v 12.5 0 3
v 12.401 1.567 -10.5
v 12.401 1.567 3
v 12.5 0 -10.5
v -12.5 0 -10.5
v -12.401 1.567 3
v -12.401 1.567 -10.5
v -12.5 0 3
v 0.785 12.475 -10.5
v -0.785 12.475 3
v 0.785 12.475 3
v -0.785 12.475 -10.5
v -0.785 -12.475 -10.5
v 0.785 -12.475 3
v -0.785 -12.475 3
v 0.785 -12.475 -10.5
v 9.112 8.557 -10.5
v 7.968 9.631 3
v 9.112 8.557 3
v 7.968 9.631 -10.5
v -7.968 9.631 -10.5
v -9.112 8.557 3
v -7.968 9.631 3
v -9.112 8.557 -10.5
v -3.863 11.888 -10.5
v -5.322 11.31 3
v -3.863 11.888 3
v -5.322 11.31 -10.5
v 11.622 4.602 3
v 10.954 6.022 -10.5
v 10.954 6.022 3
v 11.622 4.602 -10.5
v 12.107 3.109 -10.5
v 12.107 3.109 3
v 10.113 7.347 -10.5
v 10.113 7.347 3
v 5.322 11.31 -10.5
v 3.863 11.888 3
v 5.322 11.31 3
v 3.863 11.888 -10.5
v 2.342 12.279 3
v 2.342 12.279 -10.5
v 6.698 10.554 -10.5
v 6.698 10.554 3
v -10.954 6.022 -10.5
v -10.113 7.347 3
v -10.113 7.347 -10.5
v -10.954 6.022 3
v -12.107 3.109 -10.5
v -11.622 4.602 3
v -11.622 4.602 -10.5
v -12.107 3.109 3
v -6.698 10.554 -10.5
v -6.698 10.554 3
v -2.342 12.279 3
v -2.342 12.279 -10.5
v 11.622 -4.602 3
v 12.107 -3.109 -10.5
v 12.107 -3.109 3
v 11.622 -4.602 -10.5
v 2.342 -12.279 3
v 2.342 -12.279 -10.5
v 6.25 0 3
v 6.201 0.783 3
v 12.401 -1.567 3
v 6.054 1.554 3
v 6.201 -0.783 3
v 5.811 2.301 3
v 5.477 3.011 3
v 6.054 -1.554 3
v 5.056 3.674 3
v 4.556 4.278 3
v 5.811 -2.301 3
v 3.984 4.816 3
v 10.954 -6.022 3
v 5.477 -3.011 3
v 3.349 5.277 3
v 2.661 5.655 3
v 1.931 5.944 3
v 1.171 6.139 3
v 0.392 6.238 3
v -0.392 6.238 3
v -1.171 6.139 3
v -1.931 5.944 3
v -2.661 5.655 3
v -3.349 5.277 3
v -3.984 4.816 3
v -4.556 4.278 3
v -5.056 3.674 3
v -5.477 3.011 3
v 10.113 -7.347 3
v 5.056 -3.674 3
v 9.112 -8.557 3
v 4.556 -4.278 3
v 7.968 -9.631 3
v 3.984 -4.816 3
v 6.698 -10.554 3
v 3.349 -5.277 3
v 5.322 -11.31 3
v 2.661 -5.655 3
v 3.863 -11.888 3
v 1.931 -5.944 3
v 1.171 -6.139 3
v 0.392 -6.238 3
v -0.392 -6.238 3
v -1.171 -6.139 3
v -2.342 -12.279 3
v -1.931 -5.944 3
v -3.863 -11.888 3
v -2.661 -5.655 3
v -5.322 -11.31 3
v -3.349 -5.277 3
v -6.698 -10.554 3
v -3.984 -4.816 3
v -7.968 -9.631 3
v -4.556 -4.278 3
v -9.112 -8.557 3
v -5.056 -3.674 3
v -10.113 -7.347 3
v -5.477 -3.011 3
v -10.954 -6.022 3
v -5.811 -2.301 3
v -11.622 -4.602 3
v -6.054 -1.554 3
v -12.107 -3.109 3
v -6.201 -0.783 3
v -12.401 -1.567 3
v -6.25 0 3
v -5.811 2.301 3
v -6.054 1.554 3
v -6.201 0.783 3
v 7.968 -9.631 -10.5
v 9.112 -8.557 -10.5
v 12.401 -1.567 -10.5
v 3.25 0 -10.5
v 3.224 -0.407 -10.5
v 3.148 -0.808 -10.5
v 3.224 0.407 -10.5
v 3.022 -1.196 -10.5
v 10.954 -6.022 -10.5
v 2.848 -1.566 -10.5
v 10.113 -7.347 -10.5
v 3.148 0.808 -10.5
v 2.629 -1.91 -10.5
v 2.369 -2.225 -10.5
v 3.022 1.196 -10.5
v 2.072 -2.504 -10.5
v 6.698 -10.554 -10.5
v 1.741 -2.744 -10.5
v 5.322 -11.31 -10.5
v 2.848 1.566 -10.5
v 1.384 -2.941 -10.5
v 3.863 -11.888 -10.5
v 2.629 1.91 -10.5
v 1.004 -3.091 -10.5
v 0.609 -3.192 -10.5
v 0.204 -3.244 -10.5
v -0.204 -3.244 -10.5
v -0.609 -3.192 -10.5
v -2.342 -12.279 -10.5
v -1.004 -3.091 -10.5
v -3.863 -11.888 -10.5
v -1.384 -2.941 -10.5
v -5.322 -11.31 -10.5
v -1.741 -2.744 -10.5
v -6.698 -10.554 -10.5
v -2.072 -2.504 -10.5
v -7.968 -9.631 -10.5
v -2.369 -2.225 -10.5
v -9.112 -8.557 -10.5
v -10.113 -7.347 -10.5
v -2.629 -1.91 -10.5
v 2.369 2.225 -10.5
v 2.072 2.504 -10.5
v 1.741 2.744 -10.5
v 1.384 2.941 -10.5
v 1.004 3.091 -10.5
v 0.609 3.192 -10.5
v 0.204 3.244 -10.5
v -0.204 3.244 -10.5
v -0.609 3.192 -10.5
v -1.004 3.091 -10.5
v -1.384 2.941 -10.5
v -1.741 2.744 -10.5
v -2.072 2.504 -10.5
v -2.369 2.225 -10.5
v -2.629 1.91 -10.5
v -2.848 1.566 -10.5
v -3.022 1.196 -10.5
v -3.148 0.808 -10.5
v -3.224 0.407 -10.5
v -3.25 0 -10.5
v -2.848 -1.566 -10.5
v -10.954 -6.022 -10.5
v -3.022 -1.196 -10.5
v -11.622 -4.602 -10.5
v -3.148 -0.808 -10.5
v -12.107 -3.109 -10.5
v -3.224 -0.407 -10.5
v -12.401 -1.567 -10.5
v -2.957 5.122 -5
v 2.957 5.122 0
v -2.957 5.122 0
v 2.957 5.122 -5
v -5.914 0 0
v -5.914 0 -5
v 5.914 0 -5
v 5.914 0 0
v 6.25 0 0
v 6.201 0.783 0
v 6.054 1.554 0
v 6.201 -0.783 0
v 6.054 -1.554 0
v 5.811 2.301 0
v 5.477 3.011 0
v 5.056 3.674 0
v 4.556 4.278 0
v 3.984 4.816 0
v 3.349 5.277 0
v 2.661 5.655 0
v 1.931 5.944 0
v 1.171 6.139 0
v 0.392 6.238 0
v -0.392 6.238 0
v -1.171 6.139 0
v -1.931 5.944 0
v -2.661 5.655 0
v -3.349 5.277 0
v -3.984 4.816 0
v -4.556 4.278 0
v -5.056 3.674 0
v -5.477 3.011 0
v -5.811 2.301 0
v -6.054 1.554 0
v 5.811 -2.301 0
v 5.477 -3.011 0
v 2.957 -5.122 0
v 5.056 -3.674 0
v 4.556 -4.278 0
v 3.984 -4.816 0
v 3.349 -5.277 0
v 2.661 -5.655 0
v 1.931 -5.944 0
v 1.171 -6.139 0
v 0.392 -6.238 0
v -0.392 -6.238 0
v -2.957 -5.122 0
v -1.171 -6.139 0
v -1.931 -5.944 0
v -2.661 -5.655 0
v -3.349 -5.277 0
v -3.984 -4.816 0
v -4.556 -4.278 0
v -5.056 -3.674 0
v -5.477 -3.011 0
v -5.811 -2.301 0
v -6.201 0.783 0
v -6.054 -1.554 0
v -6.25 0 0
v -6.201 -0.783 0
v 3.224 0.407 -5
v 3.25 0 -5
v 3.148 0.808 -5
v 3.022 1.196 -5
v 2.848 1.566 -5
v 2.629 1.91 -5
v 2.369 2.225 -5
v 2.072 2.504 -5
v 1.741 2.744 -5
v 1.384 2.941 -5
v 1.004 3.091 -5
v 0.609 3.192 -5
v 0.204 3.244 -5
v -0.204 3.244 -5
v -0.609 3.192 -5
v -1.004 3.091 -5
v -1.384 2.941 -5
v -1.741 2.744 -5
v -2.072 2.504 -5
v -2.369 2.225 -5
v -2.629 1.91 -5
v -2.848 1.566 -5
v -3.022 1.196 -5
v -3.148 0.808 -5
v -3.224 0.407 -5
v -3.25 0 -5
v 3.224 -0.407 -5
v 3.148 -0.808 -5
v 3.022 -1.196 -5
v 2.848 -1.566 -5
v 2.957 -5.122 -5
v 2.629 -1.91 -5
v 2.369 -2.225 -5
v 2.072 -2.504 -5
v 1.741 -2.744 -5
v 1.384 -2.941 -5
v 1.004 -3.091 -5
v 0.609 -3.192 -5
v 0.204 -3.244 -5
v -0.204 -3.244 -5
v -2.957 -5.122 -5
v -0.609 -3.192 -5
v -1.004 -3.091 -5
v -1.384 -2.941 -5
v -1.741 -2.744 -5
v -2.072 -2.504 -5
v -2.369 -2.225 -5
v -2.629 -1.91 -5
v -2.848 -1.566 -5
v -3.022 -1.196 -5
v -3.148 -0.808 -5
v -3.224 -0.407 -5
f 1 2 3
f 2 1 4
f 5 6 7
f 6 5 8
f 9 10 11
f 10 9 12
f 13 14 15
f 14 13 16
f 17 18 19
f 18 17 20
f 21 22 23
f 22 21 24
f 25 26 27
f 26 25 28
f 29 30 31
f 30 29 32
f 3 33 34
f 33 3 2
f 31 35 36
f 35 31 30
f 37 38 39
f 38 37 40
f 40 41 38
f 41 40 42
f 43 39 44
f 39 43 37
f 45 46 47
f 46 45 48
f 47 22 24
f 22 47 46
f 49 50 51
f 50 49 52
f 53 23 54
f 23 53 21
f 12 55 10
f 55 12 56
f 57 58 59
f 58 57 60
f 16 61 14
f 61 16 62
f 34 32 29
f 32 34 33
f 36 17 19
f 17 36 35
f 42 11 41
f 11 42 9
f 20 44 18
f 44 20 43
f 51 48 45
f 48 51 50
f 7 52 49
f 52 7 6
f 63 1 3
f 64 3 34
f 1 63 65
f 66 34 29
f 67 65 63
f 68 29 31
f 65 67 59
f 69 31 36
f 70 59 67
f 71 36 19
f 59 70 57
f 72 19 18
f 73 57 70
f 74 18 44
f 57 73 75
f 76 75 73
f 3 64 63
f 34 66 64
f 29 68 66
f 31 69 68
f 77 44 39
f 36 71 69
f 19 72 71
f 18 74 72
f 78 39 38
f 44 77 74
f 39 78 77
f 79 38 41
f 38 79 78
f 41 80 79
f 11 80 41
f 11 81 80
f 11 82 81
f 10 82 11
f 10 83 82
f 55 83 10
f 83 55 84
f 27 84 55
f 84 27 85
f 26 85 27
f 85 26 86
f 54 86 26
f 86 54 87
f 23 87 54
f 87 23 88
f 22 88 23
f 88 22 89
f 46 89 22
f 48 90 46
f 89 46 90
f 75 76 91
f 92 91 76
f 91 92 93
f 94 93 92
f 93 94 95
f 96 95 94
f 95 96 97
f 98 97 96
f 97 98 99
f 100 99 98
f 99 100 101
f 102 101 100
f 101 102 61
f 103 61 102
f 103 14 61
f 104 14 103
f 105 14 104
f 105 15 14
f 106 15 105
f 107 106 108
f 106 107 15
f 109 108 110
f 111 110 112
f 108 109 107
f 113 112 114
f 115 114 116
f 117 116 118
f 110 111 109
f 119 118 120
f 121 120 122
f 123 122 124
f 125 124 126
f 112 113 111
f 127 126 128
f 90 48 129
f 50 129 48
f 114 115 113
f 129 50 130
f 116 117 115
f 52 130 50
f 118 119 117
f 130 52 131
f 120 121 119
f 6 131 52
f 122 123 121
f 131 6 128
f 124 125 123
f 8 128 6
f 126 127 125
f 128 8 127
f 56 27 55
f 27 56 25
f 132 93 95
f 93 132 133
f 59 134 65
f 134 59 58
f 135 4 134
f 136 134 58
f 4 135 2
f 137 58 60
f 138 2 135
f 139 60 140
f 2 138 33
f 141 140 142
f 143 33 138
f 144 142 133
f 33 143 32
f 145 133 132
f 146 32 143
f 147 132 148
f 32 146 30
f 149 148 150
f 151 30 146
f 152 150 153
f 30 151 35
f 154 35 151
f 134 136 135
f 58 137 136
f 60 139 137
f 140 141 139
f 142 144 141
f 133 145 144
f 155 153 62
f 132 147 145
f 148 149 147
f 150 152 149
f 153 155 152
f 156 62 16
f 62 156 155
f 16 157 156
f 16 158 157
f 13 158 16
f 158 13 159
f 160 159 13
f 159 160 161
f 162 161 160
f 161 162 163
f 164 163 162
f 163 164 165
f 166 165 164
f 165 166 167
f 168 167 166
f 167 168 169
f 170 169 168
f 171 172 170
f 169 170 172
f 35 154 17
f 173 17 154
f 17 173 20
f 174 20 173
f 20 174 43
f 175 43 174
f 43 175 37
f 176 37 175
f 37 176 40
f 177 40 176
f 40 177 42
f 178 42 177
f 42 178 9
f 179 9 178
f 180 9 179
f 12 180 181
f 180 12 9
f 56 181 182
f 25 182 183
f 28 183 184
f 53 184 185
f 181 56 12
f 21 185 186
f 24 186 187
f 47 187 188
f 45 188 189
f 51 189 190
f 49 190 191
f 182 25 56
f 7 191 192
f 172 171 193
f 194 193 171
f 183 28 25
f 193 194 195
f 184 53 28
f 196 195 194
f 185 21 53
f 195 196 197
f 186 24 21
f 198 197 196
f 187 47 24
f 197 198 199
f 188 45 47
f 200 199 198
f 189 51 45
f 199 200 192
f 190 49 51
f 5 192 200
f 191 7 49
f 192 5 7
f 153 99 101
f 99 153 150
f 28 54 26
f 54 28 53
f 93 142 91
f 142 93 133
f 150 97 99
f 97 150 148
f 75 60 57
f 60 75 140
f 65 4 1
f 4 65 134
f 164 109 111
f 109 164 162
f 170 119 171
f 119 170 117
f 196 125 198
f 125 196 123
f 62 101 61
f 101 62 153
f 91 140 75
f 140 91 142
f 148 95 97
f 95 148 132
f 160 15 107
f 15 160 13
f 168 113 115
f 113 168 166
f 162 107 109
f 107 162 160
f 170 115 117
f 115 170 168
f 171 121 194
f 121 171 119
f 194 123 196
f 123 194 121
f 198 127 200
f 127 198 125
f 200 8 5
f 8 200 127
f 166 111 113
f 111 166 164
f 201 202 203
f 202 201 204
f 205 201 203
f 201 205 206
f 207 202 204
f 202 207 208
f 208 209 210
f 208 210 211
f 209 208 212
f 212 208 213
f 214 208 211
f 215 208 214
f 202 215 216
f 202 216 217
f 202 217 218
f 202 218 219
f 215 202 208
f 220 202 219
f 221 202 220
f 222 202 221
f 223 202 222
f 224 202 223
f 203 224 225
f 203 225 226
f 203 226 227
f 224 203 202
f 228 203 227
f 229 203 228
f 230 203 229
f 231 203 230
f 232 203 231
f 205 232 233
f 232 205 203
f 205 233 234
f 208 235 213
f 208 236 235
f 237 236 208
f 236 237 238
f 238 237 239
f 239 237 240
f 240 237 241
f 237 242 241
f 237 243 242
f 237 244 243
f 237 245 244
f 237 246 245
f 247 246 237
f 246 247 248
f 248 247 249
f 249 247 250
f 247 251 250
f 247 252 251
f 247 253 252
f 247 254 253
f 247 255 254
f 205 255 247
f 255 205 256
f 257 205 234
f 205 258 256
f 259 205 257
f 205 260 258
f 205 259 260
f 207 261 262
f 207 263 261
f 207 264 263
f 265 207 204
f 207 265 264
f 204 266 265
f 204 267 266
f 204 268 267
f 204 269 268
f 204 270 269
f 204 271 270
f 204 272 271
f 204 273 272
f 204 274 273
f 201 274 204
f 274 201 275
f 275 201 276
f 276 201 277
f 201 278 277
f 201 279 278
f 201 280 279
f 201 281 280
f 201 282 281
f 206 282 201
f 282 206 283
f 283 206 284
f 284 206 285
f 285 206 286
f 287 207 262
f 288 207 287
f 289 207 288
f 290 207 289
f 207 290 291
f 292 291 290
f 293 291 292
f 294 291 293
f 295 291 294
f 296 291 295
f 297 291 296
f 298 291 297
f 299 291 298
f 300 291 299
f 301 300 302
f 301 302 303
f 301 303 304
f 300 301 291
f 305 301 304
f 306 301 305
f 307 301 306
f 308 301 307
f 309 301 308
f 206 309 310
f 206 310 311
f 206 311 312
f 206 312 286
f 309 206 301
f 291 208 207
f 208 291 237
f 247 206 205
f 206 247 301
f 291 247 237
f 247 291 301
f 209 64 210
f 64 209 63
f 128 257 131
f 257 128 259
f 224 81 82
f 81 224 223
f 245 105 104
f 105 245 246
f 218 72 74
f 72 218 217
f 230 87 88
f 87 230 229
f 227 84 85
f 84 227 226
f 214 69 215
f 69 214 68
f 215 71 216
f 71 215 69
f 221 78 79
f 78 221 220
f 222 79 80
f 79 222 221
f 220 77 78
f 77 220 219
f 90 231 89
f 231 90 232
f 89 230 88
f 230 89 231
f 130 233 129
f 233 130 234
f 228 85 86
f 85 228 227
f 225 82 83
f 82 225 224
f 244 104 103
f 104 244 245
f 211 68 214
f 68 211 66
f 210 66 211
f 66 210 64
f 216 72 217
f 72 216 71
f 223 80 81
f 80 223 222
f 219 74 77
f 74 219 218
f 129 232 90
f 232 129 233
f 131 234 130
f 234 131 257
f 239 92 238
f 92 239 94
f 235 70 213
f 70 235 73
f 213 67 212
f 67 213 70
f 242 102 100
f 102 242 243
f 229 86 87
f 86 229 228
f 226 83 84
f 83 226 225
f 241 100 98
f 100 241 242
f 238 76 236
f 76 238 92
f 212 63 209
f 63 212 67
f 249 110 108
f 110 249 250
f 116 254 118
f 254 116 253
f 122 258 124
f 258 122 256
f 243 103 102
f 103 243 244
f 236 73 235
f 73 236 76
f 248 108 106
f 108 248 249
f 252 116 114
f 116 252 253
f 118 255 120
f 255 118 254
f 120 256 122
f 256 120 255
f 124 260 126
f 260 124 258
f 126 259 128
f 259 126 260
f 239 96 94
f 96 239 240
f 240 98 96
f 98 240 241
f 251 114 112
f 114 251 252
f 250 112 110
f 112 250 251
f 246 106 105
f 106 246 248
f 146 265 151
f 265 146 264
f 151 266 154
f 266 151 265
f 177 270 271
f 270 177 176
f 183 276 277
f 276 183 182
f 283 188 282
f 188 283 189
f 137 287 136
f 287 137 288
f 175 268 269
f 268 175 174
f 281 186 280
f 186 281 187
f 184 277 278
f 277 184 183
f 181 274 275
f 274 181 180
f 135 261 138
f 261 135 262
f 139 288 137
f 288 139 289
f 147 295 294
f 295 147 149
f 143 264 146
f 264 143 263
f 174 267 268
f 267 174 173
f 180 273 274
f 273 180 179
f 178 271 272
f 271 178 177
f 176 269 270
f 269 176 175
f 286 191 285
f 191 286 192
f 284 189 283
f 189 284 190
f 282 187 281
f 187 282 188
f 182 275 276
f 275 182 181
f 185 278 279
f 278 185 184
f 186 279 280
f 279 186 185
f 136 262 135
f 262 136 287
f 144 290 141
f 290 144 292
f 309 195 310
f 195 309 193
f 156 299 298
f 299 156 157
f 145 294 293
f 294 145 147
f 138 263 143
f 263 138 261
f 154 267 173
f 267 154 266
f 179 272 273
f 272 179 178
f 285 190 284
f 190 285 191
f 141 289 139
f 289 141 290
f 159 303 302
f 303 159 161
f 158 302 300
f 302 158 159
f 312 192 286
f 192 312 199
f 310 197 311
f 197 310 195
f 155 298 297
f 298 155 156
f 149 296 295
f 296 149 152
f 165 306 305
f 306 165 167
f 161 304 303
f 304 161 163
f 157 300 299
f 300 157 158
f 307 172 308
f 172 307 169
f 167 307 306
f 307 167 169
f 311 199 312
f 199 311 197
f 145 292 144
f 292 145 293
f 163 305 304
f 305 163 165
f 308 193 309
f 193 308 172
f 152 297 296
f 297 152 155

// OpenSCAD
$fn = 50;

difference() {
	union() {
		translate(v = [0, 0, -10.5]) {
			cylinder(h = 13.5, r = 12.5);
		}
		#translate(v = [0, 0, -12.0]) {
			cylinder(h = 12, r = 2.875);
		}
	}
	union() {
		translate(v = [0, 0, 0]) {
			rotate(a = [0, 0, 0]) {
				difference() {
					union() {
						translate(v = [0, 0, -5]) {
							linear_extrude(height = 5) {
								polygon(points = [[5.914249999999999, 0.0], [2.957125, 5.1218907443321156], [-2.9571249999999982, 5.1218907443321156], [-5.914249999999999, 7.242867331857232e-16], [-2.9571250000000022, -5.121890744332115], [2.9571249999999956, -5.121890744332118]]);
							}
						}
					}
					union();
				}
			}
		}
		#cylinder(h = 3, r = 6.25);
		#translate(v = [0, 0, -100.0]) {
			cylinder(h = 200, r = 3.25);
		}
	}
}
